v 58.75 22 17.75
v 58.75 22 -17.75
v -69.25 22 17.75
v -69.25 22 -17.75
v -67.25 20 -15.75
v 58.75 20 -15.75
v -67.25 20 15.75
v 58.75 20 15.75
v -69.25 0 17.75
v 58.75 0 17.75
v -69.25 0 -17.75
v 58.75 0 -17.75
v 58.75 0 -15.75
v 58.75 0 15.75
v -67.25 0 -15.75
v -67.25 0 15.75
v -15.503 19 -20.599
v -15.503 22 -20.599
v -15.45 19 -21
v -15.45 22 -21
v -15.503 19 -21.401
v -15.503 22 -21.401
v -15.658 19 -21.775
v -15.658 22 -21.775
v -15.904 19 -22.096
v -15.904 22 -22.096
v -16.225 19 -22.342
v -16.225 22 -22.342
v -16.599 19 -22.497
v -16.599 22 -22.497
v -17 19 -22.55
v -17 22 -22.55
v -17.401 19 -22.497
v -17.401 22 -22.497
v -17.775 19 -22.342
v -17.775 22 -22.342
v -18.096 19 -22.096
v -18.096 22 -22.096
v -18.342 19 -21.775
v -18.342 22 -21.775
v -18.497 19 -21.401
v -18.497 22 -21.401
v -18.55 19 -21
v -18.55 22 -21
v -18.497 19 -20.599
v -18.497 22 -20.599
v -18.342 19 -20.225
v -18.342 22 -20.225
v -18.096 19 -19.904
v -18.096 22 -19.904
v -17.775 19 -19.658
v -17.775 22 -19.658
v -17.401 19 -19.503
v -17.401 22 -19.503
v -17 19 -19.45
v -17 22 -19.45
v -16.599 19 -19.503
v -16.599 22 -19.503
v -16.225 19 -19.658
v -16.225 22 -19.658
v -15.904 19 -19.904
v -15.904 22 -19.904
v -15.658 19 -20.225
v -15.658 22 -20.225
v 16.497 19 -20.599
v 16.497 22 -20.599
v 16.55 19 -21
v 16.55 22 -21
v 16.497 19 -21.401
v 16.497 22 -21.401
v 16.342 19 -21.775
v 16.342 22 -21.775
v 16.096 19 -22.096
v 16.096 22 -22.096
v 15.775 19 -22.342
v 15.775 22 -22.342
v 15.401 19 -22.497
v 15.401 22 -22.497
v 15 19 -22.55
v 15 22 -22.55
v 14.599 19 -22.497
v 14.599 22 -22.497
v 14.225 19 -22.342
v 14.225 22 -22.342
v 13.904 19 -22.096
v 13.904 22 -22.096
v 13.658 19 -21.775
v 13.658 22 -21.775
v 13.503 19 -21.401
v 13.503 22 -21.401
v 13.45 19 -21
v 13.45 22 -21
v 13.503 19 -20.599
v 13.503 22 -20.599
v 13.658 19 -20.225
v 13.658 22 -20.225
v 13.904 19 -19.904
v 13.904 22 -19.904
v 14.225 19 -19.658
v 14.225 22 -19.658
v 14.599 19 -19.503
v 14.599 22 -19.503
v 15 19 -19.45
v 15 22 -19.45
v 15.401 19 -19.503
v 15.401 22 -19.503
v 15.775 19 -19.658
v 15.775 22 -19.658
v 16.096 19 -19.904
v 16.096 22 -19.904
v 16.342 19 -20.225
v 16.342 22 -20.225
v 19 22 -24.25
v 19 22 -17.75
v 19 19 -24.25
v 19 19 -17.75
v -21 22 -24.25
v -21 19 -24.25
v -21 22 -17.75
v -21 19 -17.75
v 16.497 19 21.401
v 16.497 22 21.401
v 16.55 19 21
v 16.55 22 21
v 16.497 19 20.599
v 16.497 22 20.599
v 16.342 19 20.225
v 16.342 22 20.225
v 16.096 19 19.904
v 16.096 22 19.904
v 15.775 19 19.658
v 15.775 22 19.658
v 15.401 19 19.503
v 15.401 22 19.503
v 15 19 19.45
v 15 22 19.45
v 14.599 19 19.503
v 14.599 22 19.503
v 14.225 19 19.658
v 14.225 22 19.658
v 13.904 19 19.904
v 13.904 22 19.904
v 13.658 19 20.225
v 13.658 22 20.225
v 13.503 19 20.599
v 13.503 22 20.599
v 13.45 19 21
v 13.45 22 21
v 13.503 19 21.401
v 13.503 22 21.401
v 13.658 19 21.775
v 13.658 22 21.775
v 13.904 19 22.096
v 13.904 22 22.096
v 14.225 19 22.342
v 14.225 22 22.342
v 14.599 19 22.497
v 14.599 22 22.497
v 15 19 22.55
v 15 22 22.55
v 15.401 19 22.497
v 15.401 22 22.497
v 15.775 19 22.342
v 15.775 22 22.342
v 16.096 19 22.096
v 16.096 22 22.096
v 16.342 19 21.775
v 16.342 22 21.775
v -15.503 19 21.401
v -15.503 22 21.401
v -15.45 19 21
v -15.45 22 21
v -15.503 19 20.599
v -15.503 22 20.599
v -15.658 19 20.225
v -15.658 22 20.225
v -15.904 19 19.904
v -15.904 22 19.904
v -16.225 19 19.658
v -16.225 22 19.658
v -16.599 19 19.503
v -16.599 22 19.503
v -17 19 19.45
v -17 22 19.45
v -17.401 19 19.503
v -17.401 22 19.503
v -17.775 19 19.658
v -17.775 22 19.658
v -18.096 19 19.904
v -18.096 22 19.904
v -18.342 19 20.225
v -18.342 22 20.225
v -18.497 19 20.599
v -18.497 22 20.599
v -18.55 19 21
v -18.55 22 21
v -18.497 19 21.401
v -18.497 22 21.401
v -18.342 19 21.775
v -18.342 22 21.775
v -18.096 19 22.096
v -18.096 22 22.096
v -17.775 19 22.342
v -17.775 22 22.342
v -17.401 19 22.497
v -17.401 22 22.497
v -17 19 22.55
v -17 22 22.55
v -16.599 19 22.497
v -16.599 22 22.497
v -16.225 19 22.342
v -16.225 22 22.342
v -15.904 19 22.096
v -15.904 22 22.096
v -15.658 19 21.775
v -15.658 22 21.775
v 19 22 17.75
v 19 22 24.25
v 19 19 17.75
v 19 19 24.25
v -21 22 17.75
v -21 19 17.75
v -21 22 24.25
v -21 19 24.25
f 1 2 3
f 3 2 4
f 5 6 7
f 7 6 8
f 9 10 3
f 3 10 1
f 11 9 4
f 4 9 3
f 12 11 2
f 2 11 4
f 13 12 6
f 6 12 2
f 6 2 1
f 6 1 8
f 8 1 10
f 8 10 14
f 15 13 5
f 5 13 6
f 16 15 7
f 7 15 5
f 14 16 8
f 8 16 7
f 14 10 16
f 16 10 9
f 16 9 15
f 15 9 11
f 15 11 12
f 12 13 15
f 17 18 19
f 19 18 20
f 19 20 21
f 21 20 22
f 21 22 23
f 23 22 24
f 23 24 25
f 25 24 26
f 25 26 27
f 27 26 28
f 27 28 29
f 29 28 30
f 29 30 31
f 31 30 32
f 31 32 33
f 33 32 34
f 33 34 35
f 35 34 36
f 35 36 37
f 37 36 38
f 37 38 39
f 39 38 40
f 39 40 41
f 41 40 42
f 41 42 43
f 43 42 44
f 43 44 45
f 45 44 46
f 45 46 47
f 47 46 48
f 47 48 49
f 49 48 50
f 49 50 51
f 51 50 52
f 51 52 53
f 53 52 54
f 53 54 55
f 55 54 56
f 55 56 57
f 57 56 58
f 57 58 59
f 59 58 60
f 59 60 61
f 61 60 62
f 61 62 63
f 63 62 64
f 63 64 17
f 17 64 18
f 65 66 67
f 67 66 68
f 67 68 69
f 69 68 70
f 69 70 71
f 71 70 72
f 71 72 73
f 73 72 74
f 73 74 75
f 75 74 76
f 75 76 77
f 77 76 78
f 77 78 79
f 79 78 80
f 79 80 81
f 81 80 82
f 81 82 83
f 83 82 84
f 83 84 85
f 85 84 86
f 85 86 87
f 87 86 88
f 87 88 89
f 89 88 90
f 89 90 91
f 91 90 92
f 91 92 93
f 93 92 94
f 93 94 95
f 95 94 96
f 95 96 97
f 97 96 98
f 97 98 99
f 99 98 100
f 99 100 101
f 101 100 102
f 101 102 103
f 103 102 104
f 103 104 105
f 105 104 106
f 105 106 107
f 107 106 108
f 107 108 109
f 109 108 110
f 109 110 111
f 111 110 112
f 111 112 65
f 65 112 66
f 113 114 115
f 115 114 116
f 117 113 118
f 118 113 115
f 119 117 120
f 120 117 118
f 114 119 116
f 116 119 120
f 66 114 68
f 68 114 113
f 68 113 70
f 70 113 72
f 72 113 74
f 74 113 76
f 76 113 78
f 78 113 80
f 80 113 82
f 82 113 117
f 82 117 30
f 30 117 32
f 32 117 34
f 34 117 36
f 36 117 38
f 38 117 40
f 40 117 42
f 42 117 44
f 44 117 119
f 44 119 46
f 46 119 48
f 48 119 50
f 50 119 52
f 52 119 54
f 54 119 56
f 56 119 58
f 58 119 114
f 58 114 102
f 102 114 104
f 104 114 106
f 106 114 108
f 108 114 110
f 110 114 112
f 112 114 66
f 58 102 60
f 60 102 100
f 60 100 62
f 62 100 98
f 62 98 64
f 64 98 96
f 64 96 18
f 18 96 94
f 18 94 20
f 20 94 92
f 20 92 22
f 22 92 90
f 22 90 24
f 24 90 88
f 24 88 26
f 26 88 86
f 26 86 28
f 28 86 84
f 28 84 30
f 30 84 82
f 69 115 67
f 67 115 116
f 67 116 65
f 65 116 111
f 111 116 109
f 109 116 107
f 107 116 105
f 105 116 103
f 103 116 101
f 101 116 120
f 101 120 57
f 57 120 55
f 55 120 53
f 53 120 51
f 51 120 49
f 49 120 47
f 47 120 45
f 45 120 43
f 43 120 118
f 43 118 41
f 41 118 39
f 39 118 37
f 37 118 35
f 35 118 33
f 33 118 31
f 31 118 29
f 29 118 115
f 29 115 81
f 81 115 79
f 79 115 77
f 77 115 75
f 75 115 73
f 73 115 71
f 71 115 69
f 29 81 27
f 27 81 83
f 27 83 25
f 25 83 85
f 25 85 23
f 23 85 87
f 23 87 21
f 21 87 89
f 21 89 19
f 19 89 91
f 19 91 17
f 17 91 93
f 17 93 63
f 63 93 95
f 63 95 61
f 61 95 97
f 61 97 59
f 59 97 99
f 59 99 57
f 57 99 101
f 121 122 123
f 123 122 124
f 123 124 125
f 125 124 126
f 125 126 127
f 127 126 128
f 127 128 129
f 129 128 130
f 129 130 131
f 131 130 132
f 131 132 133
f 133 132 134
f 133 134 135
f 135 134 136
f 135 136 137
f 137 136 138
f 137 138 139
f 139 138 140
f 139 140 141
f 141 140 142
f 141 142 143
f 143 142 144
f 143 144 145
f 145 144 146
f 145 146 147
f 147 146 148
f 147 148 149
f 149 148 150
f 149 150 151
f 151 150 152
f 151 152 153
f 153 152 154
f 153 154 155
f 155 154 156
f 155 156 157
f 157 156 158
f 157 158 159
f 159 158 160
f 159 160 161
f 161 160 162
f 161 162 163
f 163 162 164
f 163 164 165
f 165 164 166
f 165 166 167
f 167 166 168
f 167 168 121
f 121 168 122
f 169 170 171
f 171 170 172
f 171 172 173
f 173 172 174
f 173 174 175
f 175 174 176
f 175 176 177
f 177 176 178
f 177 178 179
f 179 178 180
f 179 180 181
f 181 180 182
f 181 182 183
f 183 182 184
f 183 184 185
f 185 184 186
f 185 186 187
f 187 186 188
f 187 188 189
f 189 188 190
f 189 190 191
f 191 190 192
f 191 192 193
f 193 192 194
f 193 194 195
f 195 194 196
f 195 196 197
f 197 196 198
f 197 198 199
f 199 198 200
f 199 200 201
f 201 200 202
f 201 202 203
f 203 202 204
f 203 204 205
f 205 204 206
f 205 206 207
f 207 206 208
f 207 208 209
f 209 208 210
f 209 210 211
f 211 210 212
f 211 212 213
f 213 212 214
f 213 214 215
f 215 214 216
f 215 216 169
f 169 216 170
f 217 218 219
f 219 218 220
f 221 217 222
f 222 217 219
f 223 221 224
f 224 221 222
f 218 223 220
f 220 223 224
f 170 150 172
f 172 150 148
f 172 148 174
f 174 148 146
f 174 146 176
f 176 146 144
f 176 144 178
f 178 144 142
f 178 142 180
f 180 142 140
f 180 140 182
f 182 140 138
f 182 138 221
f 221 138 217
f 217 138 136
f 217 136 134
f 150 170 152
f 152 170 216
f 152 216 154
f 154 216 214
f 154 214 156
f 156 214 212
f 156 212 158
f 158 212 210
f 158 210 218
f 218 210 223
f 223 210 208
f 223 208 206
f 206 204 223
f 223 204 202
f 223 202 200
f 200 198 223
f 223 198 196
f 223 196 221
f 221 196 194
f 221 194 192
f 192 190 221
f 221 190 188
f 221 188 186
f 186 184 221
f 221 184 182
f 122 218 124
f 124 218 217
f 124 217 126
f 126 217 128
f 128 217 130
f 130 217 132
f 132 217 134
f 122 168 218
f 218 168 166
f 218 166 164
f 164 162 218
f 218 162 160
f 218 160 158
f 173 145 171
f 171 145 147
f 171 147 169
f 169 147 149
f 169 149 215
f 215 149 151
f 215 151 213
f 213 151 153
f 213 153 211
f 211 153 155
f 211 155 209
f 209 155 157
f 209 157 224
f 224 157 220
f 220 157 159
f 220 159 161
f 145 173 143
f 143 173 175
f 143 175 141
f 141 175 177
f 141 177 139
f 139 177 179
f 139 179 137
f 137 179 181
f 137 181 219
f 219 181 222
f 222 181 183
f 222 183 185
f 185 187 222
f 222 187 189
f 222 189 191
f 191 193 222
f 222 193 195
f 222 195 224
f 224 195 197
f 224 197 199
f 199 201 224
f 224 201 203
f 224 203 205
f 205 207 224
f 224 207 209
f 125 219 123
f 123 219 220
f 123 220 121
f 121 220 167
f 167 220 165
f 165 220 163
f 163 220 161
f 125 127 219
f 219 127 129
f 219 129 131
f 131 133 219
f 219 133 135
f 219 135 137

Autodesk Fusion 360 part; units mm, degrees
sketch "base" plane through (0, 0, 0) normal (0, 1, 0) x (1, 0, 0)
  line L0 (-67, 15.5) -> (67, 15.5) construction
  line L1 (67, 15.5) -> (67, -15.5) construction
  line L2 (67, -15.5) -> (-67, -15.5) construction
  line L3 (-67, -15.5) -> (-67, 15.5) construction
  line L4 (0, 15.5) -> (0, -15.5) construction
  line L5 (-67, 0) -> (67, 0) construction
  line L6 (-69.25, 17.75) -> (58.75, 17.75)
  line L7 (58.75, 17.75) -> (58.75, 15.75)
  line L8 (58.75, 15.75) -> (-69.25, 15.75)
  line L9 (-69.25, 15.75) -> (-69.25, 17.75)
  line L10 (-69.25, -15.75) -> (58.75, -15.75)
  line L11 (58.75, -15.75) -> (58.75, -17.75)
  line L12 (58.75, -17.75) -> (-69.25, -17.75)
  line L13 (-69.25, -17.75) -> (-69.25, -15.75)
  line L14 (-69.25, 15.75) -> (-69.25, -15.75)
  line L15 (-67.25, -15.75) -> (-67.25, 15.75)
  dimension "d1" = 134
  dimension "d2" = 31
  dimension "d3" = 128
  dimension "d4" = 2
  dimension "d5" = 2
  dimension "margin" = 0.25
  dimension "d7" = 0.25
  dimension "d8" = 0.25
extrude "Extrude1" add sketch "base" along normal blind 20 makes body 1
sketch "top" plane through (0, 20, 0) normal (0, 1, 0) x (-1, 0, 0)
  line L0 (-58.75, 15.75) -> (67.25, 15.75)
  line L1 (67.25, 15.75) -> (67.25, -15.75)
  line L2 (67.25, -15.75) -> (-58.75, -15.75)
  line L3 (-58.75, -15.75) -> (-58.75, -17.75)
  line L4 (-58.75, -17.75) -> (69.25, -17.75)
  line L5 (69.25, -17.75) -> (69.25, 17.75)
  line L6 (69.25, 17.75) -> (-58.75, 17.75)
  line L7 (-58.75, 17.75) -> (-58.75, 15.75)
  line L8 (69.25, -17.75) -> (-58.75, -17.75)
  line L9 (-58.75, -17.75) -> (-58.75, 17.75)
  line L10 (-58.75, 17.75) -> (69.25, 17.75)
  line L11 (69.25, 17.75) -> (69.25, -17.75)
extrude "Extrude2" add sketch "top" along normal blind 2 bodies 1
sketch "wing supports" plane through (0, 22, 0) normal (0, 1, 0) x (-1, 0, 0)
  line L0 (69.25, 17.75) -> (-58.75, 17.75)
  line L1 (-58.75, 17.75) -> (-58.75, -17.75)
  line L2 (-58.75, -17.75) -> (69.25, -17.75)
  line L3 (69.25, -17.75) -> (69.25, 17.75)
  line L4 (21, -24.25) -> (-19, -24.25)
  line L5 (-19, -24.25) -> (-19, -17.75)
  line L6 (-19, -17.75) -> (21, -17.75)
  line L7 (21, -17.75) -> (21, -24.25)
  line L8 (21, 17.75) -> (-19, 17.75)
  line L9 (-19, 17.75) -> (-19, 24.25)
  line L10 (-19, 24.25) -> (21, 24.25)
  line L11 (21, 24.25) -> (21, 17.75)
  circle A0 centre (17, 21) radius 1.55
  circle A1 centre (-15, 21) radius 1.55
  line L12 (17, 21) -> (-15, 21) construction
  circle A2 centre (17, -21) radius 1.55
  circle A3 centre (-15, -21) radius 1.55
  line L13 (17, -21) -> (-15, -21) construction
  circle A4 centre (17, 21) radius 2.75
  circle A5 centre (-15, 21) radius 2.75
  circle A6 centre (17, -21) radius 2.75
  circle A7 centre (-15, -21) radius 2.75
  dimension "d13" = 6.5
  dimension "d14" = 40
  dimension "d15" = 19
  dimension "d16" = 3.1
  dimension "d17" = 3.25
  dimension "d18" = 4
  dimension "d19" = 4
  dimension "d20" = 3.25
  dimension "d21" = 4
  dimension "d22" = 4
  dimension "d25" = 5.5
extrude "Extrude3" add sketch "wing supports" against normal blind 3 separate body contours L0 L8 L9 L10 L11 | L2 L4 L5 L6 L7 | A4 | A5 | A6 | A7 makes body 2 at (18.1833, 22, -21) makes body 3 at (18.1833, 22, 21)
extrude "Extrude4" [suppressed]
equation "d5 = d4"
equation "d7 = margin"
equation "d8 = margin"
equation "d19 = d18"
equation "d20 = d17"
equation "d21 = d18"
equation "d22 = d18"
